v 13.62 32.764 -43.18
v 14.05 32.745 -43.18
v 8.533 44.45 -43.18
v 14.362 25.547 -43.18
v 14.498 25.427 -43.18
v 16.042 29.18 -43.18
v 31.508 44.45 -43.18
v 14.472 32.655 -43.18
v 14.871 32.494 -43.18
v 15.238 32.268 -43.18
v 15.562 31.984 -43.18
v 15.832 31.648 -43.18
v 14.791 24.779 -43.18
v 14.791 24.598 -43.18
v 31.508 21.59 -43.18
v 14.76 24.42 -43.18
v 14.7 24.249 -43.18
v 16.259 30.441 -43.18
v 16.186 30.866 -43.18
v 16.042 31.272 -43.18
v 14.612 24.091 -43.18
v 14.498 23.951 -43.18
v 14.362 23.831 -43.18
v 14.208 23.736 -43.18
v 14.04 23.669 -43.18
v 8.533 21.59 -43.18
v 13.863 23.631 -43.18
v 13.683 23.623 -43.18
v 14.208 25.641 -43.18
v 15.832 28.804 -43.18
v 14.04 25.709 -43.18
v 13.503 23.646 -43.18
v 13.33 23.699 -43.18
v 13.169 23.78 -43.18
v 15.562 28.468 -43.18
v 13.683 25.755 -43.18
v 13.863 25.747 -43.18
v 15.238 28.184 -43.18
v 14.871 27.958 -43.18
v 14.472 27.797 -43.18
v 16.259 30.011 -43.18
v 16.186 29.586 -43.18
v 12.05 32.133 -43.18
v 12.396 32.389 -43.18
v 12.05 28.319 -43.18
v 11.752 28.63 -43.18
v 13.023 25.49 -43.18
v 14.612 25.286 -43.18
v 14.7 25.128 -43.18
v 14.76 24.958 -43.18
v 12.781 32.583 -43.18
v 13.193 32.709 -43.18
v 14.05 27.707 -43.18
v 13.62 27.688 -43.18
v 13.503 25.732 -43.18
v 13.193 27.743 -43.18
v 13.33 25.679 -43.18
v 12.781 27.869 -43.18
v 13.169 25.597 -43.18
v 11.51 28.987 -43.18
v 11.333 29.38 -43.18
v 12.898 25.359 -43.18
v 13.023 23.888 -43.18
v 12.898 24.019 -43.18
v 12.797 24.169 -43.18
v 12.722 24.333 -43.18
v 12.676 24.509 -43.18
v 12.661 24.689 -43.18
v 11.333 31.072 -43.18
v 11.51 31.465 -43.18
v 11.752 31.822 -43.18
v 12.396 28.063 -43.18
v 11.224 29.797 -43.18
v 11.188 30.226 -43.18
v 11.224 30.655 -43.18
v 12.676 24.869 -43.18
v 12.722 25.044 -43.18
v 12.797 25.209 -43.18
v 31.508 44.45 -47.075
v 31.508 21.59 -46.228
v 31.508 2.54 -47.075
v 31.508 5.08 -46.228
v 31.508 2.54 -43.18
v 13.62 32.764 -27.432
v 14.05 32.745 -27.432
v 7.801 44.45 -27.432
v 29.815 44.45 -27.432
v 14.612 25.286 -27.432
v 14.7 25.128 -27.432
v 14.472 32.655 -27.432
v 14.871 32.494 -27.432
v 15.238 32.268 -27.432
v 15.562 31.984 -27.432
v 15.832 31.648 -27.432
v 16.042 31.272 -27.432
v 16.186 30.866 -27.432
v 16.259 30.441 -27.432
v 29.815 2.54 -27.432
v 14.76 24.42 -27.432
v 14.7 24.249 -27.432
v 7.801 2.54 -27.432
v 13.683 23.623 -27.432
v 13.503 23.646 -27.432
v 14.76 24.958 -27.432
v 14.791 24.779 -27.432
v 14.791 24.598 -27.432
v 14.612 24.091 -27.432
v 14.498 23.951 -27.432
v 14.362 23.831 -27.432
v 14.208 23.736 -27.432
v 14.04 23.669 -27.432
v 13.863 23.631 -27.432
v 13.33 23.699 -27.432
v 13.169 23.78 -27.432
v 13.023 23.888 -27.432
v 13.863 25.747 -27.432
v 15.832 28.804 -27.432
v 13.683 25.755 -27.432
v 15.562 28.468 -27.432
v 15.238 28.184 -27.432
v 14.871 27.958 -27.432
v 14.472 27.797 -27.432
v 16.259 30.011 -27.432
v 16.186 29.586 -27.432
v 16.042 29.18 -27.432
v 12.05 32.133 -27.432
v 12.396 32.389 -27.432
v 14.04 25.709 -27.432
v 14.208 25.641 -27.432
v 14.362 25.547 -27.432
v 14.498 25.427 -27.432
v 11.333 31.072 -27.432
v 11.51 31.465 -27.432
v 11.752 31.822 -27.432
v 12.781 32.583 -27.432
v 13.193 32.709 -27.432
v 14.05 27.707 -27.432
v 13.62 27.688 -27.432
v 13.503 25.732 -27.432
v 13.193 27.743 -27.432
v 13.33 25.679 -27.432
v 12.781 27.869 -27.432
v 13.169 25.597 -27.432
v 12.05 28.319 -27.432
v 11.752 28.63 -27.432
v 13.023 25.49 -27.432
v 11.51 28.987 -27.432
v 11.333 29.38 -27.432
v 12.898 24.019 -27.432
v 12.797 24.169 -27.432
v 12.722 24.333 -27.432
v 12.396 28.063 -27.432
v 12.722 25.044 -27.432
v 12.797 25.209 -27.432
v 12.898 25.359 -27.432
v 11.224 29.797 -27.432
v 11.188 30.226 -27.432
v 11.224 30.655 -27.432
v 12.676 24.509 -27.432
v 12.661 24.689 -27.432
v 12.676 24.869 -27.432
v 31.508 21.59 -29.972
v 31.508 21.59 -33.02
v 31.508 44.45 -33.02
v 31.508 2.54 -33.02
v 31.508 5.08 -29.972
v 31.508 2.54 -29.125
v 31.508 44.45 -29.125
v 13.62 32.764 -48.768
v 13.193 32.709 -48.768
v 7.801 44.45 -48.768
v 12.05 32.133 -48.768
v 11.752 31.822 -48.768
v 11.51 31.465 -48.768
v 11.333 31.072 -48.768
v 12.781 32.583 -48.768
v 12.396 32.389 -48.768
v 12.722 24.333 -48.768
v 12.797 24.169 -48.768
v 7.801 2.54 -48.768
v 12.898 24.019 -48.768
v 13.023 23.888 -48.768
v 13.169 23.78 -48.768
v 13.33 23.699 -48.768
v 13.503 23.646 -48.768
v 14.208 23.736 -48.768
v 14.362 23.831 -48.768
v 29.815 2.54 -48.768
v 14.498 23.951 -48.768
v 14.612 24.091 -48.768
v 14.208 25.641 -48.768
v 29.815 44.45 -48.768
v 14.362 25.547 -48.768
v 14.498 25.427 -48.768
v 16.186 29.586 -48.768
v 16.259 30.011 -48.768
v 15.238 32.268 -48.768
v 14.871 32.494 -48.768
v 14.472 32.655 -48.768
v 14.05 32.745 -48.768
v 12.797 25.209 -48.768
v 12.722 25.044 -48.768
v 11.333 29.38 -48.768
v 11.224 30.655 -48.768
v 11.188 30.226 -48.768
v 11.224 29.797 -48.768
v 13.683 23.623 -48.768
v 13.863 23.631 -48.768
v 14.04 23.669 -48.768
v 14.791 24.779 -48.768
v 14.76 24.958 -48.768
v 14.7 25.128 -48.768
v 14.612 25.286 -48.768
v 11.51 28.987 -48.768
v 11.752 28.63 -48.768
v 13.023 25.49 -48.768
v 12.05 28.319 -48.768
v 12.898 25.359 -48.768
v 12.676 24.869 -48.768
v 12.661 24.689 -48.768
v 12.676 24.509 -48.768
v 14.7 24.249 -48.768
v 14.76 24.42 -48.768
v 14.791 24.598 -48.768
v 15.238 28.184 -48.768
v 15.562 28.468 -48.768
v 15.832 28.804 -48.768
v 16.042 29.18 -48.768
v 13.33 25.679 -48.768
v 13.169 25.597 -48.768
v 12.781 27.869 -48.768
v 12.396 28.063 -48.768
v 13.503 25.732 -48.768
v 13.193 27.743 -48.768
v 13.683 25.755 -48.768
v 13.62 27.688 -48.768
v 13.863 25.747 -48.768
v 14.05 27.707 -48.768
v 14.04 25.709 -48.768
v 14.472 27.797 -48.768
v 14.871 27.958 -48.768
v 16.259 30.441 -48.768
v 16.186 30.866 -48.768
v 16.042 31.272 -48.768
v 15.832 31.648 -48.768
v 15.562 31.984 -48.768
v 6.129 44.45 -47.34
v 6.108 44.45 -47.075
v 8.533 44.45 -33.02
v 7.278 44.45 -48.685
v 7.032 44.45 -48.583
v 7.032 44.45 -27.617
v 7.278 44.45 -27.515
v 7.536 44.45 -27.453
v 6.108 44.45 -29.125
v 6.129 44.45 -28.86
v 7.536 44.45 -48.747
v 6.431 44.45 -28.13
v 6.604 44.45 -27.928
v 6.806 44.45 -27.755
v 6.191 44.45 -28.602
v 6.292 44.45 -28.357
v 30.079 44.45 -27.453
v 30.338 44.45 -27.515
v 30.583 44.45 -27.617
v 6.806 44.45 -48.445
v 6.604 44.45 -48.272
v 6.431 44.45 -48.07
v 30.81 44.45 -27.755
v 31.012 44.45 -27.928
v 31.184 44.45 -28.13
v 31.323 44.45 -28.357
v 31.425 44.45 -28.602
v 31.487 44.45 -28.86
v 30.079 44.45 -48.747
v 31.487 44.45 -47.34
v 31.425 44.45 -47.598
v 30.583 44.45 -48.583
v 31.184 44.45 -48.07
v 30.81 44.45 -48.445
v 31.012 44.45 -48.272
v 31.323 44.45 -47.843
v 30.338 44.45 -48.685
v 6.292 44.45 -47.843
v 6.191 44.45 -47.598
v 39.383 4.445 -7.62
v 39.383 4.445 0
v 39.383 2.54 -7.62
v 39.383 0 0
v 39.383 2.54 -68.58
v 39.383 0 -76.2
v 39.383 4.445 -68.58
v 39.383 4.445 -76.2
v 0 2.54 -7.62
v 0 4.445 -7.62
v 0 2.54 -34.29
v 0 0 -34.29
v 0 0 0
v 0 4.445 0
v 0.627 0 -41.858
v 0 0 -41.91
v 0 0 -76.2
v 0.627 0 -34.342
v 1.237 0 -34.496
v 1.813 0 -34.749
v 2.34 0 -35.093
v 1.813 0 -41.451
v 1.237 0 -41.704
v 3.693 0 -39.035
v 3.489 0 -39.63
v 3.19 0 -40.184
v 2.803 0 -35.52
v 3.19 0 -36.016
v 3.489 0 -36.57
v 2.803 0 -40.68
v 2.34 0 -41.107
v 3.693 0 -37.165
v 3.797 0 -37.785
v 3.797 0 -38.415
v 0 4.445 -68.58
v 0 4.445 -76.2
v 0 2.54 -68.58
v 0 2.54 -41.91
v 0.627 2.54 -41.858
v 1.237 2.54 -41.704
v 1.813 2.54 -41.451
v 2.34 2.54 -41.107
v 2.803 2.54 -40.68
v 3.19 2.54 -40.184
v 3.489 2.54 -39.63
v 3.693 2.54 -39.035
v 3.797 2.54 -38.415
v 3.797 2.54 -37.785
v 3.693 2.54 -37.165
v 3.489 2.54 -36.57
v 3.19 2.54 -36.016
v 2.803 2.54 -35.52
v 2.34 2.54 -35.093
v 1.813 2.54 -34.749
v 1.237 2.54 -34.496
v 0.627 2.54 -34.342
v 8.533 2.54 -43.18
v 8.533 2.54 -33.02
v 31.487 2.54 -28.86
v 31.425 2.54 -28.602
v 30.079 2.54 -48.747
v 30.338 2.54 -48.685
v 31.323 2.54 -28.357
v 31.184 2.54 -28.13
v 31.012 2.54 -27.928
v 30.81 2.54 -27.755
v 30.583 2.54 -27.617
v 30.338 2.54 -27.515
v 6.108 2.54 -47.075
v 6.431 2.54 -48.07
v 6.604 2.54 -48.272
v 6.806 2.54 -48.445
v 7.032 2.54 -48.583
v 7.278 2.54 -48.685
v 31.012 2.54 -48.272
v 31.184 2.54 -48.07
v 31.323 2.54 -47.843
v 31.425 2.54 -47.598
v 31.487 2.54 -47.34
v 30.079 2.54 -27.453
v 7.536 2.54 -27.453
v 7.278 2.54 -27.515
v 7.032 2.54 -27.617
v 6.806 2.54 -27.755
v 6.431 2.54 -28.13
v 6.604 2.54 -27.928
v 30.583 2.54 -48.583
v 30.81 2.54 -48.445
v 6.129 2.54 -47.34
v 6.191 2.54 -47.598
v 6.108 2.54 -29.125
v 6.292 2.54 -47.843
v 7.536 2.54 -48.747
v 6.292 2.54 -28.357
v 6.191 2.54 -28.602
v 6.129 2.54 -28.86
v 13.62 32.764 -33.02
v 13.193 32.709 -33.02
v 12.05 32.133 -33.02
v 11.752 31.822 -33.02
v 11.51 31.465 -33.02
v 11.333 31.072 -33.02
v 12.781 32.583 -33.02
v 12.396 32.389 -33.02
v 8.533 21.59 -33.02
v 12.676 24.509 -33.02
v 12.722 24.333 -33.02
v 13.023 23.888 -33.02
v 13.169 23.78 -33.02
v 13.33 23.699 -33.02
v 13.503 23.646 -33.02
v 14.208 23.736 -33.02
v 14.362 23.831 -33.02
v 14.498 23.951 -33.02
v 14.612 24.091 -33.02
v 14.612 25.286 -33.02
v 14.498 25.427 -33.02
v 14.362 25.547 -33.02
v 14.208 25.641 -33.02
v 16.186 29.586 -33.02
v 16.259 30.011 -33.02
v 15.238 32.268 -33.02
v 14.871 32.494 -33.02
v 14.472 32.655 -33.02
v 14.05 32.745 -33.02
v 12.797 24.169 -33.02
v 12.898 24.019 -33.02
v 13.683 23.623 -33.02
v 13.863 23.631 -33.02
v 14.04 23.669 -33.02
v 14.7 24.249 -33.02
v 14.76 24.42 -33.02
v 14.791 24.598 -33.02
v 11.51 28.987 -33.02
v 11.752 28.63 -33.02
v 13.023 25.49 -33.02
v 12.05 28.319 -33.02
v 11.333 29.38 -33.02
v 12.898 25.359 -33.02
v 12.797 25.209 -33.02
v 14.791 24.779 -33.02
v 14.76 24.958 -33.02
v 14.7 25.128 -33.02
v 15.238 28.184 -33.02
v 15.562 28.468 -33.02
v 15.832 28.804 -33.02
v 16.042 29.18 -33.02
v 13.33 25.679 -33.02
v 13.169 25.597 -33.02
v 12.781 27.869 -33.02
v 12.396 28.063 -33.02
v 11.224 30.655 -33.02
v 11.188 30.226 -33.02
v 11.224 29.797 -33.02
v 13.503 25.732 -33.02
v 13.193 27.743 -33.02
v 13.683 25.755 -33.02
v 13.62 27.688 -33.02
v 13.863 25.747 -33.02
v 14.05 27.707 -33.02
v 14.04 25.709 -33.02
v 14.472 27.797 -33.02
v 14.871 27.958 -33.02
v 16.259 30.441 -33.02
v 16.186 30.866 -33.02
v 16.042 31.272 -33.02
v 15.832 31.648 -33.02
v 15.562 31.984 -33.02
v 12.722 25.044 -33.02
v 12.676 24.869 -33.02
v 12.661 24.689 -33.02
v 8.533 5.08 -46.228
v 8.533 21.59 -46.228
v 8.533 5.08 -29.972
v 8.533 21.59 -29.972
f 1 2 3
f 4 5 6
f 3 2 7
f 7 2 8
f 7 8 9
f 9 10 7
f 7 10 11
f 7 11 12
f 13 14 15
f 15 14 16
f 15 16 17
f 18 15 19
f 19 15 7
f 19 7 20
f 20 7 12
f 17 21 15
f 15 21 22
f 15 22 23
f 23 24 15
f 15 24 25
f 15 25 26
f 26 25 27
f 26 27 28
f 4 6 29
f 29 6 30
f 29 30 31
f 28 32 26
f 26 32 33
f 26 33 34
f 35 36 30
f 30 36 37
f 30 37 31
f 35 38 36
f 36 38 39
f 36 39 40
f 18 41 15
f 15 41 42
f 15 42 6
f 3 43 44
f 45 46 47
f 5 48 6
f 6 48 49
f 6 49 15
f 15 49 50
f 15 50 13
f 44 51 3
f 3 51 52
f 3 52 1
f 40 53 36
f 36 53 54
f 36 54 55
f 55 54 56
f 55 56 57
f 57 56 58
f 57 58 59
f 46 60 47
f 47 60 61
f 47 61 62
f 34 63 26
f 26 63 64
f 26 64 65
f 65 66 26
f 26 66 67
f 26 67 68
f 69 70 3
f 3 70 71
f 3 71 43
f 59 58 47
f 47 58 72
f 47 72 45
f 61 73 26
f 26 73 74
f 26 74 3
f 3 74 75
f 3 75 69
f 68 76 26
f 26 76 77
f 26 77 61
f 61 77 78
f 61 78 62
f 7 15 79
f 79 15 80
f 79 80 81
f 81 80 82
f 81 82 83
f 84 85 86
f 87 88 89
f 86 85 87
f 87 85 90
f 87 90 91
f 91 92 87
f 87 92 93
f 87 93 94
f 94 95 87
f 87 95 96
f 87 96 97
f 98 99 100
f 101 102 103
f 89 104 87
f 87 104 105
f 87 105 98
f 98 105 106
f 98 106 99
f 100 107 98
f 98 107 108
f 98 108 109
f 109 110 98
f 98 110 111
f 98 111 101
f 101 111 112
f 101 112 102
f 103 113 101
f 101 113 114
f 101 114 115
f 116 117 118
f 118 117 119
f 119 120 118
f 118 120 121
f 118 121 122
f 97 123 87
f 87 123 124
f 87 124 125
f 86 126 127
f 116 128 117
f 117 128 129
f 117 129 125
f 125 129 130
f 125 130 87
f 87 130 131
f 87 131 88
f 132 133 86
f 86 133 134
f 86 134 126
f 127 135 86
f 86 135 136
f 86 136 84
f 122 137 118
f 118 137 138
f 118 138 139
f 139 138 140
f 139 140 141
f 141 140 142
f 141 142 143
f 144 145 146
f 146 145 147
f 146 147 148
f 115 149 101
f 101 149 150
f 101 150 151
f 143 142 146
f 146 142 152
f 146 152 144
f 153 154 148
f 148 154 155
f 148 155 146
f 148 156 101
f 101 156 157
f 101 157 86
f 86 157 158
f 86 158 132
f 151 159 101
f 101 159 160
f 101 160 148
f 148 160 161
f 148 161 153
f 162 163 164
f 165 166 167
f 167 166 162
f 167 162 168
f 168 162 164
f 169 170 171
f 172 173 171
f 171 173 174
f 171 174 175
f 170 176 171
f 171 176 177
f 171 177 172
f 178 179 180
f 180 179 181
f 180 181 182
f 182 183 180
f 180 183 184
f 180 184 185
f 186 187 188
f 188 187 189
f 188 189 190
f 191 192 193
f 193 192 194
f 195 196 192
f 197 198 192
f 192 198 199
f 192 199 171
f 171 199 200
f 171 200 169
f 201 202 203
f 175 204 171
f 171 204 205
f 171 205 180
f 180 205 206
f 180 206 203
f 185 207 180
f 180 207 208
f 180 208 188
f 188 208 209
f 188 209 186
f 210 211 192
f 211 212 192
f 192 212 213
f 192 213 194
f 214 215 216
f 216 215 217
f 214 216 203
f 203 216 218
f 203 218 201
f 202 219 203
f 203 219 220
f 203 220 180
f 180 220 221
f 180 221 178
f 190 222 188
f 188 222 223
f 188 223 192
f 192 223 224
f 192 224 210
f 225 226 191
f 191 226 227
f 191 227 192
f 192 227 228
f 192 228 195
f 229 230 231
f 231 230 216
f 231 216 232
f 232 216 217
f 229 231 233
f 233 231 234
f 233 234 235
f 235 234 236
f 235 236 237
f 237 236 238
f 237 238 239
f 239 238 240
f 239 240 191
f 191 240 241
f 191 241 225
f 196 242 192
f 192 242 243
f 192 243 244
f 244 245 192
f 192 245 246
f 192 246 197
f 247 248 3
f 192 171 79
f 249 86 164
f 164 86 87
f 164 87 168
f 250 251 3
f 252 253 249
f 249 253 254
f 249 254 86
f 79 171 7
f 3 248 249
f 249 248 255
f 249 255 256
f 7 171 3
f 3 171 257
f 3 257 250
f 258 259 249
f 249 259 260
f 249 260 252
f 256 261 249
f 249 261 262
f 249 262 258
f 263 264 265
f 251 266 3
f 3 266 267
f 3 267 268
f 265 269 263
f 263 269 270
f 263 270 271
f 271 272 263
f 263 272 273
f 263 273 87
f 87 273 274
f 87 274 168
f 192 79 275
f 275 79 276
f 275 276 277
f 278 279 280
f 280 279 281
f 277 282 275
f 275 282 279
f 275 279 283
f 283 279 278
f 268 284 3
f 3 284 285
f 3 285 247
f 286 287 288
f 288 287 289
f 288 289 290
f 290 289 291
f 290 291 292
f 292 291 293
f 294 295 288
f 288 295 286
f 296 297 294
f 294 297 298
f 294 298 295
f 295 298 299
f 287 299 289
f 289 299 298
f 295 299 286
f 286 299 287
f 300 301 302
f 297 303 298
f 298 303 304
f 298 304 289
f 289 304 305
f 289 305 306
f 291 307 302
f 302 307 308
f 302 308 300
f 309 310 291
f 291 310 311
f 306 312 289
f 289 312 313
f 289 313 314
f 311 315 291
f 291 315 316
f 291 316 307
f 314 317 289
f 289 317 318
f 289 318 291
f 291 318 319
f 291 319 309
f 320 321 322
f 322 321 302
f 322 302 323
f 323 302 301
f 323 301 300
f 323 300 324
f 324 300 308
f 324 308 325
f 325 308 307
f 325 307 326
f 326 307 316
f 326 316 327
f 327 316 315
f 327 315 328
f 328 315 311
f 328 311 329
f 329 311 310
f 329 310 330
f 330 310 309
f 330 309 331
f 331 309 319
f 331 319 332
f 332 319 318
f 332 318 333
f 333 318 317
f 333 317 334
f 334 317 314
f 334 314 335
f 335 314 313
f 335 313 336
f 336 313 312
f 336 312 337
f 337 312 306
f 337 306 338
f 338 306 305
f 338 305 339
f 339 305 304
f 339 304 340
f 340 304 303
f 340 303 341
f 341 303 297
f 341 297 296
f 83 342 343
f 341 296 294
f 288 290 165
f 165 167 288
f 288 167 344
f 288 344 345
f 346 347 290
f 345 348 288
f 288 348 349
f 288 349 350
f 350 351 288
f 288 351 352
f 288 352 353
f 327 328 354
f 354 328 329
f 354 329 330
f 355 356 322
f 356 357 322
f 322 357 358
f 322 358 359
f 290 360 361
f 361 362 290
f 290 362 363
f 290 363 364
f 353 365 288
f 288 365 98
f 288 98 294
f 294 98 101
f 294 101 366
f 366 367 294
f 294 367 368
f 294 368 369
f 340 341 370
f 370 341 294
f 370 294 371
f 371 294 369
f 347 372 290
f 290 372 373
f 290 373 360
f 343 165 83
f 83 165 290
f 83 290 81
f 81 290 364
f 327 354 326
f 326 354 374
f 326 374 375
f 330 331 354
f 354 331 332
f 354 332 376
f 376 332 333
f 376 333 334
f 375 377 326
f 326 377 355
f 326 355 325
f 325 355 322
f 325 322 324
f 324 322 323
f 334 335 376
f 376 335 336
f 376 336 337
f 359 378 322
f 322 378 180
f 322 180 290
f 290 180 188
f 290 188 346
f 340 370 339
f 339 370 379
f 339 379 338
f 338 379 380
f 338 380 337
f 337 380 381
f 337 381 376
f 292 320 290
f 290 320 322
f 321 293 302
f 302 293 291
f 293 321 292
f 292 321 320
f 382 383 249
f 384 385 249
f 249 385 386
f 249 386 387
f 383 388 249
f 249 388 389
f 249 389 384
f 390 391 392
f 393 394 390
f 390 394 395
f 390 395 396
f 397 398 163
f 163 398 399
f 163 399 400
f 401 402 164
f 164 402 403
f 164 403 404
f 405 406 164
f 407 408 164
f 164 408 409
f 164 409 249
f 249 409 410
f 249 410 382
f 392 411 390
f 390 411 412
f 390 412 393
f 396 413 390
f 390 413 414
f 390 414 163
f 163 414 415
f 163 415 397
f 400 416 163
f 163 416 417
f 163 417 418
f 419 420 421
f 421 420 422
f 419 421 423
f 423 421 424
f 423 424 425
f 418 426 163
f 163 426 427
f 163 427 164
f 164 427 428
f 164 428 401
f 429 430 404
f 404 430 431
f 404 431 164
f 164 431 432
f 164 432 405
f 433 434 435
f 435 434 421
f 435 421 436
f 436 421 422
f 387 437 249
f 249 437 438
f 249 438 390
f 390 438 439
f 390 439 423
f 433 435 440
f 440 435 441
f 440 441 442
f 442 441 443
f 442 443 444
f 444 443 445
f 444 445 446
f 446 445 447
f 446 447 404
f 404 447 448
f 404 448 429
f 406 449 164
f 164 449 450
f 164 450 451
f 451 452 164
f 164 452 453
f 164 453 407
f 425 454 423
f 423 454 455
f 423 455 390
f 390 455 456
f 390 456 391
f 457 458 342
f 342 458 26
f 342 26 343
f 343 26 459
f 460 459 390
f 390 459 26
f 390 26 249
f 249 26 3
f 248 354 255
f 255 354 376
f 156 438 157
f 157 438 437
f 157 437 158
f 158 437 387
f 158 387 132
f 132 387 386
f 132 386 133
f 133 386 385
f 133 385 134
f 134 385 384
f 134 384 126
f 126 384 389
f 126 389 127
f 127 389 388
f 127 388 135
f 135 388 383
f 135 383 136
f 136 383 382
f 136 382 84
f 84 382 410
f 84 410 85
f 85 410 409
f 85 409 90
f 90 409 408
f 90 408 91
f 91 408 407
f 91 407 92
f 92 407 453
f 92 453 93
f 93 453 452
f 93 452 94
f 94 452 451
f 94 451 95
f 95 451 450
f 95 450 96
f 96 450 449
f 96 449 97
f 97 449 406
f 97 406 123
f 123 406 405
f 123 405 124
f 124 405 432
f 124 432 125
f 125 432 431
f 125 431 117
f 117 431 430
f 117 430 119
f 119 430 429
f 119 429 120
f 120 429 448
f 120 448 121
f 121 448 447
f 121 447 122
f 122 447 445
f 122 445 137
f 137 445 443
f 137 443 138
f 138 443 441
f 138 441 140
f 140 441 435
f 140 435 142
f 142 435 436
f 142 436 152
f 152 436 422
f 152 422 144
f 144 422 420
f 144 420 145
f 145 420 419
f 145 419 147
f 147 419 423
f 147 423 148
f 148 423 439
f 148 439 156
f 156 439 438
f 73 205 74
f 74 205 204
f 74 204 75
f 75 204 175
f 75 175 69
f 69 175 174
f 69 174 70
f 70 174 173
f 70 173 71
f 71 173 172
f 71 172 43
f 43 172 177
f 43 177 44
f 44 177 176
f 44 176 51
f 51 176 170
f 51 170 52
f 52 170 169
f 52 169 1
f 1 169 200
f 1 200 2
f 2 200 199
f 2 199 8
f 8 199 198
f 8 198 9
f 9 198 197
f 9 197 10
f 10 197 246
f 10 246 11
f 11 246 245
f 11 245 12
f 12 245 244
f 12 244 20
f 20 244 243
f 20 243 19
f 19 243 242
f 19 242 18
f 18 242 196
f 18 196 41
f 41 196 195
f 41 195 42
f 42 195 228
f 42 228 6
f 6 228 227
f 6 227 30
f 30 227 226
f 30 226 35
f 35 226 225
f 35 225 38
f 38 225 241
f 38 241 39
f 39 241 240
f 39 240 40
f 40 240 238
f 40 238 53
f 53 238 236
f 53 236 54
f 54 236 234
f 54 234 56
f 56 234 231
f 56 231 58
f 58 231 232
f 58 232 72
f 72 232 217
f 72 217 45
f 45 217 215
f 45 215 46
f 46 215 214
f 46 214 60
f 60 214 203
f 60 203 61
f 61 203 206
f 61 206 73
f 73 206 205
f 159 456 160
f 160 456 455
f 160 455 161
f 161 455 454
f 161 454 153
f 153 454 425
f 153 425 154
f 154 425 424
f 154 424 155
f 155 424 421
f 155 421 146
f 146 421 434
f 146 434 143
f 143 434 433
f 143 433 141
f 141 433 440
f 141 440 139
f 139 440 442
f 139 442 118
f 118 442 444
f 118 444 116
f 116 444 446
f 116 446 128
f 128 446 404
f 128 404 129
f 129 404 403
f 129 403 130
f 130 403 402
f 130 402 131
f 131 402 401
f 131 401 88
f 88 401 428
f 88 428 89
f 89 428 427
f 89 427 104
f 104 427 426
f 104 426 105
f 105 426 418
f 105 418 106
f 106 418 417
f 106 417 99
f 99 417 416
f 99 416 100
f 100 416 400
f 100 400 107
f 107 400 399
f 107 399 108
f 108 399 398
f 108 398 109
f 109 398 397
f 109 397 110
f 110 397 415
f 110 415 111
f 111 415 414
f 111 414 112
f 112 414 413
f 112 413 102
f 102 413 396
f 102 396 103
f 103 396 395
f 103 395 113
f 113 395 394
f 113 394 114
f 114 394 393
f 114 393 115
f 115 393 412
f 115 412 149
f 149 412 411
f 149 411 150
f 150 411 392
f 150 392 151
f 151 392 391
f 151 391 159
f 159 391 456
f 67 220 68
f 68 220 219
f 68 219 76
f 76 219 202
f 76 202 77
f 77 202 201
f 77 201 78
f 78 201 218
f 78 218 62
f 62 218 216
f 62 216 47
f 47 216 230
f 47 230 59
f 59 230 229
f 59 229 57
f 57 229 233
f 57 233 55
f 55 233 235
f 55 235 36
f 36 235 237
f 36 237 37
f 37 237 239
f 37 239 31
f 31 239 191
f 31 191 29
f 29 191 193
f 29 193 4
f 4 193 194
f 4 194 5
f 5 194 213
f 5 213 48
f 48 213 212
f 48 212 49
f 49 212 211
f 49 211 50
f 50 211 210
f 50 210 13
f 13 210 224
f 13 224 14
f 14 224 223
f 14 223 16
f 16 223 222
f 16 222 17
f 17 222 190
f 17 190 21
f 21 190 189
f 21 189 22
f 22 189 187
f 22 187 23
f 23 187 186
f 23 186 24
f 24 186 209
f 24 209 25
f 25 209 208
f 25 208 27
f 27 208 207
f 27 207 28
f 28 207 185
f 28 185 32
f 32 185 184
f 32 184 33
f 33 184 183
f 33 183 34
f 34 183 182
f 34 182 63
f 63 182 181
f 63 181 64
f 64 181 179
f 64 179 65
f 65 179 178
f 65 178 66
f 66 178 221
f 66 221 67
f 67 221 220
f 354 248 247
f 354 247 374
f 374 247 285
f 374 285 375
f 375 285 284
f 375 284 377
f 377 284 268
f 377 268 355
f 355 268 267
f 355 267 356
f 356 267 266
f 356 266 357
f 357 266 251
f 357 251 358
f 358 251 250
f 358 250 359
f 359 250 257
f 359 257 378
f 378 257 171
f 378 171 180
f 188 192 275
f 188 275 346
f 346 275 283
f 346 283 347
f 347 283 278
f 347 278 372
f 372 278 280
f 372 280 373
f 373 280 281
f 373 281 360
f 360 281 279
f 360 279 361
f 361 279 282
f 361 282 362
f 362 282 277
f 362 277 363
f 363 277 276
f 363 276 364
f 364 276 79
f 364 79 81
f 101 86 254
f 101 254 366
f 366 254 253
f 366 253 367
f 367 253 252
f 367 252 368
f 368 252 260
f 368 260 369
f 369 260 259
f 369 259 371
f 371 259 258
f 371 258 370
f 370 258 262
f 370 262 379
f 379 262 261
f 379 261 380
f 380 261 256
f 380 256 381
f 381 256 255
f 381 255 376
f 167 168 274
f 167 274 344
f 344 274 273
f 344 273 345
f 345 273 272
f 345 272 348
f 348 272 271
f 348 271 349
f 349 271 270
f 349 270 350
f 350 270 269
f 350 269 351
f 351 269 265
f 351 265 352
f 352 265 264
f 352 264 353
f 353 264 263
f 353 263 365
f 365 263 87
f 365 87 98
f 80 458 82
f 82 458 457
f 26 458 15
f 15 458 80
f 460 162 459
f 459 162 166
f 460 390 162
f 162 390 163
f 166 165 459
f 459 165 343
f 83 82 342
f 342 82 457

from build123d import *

# Parameters (mm, degrees)
SKETCH2_W             = 39.3827
SKETCH2_H             = 7.62
BOSS_EXTRUDE2_DEPTH   = 4.445
BOSS_EXTRUDE2_2_DEPTH = 4.445
BOSS_EXTRUDE3_DEPTH   = 2.54
BOSS_EXTRUDE4_DEPTH   = 44.45
CUT_EXTRUDE3_REACH    = 78.845
SKETCH5_R             = 2.54
SKETCH5_R_2           = 1.0668
CUT_EXTRUDE5_DEPTH    = 41.91
CUT_EXTRUDE7_START    = 2.54
SKETCH7_W             = 22.974442495
SKETCH7_H             = 3.048
CUT_EXTRUDE7_DEPTH    = 16.51
CUT_EXTRUDE8_DEPTH    = 22.974442495


with BuildPart() as part:
    # Sketch2 → Boss-Extrude2 (new body)
    with BuildSketch(Plane(origin=(0, 0, 0), x_dir=(1, 0, 0), z_dir=(0, 1, 0))):
        with Locations((19.69135, 3.81)):
            Rectangle(SKETCH2_W, SKETCH2_H)
    extrude(amount=BOSS_EXTRUDE2_DEPTH)



with BuildPart() as body_2:
    # Sketch2 → Boss-Extrude2 2 (new body)
    with BuildSketch(Plane(origin=(0, 0, 0), x_dir=(1, 0, 0), z_dir=(0, 1, 0))):
        with Locations((19.69135, 72.39)):
            Rectangle(SKETCH2_W, SKETCH2_H)
    extrude(amount=BOSS_EXTRUDE2_2_DEPTH)


with BuildPart() as part_1:
    add(part.part)

    add(body_2.part)  # Boss-Extrude3 merges body 2
    # Sketch2<3> → Boss-Extrude3 (add)
    with BuildSketch(Plane(origin=(0, 0, 0), x_dir=(1, 0, 0), z_dir=(0, 1, 0))):
        with BuildLine():
            Line((0, 34.29), (0, 7.62))
            Line((0, 7.62), (39.3827, 7.62))
            Line((39.3827, 7.62), (39.3827, 68.58))
            Line((39.3827, 68.58), (0, 68.58))
            Line((0, 68.58), (0, 41.91))
            ThreePointArc((0, 41.91), (3.81, 38.1), (0, 34.29))
        make_face()
    extrude(amount=BOSS_EXTRUDE3_DEPTH)

    # Sketch2<8> → Boss-Extrude4 (add)
    with BuildSketch(Plane(origin=(0, 0, 0), x_dir=(1, 0, 0), z_dir=(0, 1, 0))):
        Polygon((8.533414456, 33.02), (8.533414456, 38.1), (8.533414456, 43.18), (16.153414456, 43.18), (31.507856951, 43.18), (31.507856951, 48.768), (6.107856951, 48.768), (6.107856951, 38.1), (6.107856951, 27.432), (31.507856951, 27.432), (31.507856951, 33.02), (16.153414456, 33.02), align=None)
    extrude(amount=BOSS_EXTRUDE4_DEPTH)

    # Cut-Extrude3: up to this face of the body (flat: up to its plane)
    cut_extrude3_end = Plane(part_1.part.faces().sort_by_distance((18.807856951, 23.495, -27.432))[0])
    # Sketch5 → Cut-Extrude3 (cut, up to the picked face)
    with BuildSketch(Plane(origin=(0, 0, -48.768), x_dir=(-1, 0, 0), z_dir=(0, 0, -1)), mode=Mode.PRIVATE) as cut_extrude3_sk1:
        with Locations((-13.727856951, 30.226)):
            Circle(SKETCH5_R)
    cut_extrude3_tool1 = split(extrude(cut_extrude3_sk1.sketch, amount=-CUT_EXTRUDE3_REACH, mode=Mode.PRIVATE), bisect_by=cut_extrude3_end, keep=Keep.BOTH, mode=Mode.PRIVATE)
    # Sketch5 → Cut-Extrude3 (cut, up to the picked face)
    with BuildSketch(Plane(origin=(0, 0, -48.768), x_dir=(-1, 0, 0), z_dir=(0, 0, -1)), mode=Mode.PRIVATE) as cut_extrude3_sk2:
        with Locations((-13.727856951, 24.6888)):
            Circle(SKETCH5_R_2)
    cut_extrude3_tool2 = split(extrude(cut_extrude3_sk2.sketch, amount=-CUT_EXTRUDE3_REACH, mode=Mode.PRIVATE), bisect_by=cut_extrude3_end, keep=Keep.BOTH, mode=Mode.PRIVATE)
    add(cut_extrude3_tool1.solids().sort_by(Axis((13.727857, 30.226, -48.768), (0, 0, 1)))[0], mode=Mode.SUBTRACT)
    add(cut_extrude3_tool2.solids().sort_by(Axis((13.727857, 24.6888, -48.768), (0, 0, 1)))[0], mode=Mode.SUBTRACT)

    # Sketch6 → Cut-Extrude5 (cut)
    with BuildSketch(Plane(origin=(0, 44.45, 0), x_dir=(1, 0, 0), z_dir=(0, 1, 0))):
        with BuildLine():
            Line((31.507856951, 29.125333333), (31.507856951, 27.432))
            Line((31.507856951, 27.432), (29.814523617, 27.432))
            ThreePointArc((29.814523617, 27.432), (31.0118911, 27.927965851), (31.507856951, 29.125333333))
        make_face()
        with BuildLine():
            Line((7.801190284, 48.768), (6.107856951, 48.768))
            Line((6.107856951, 48.768), (6.107856951, 47.074666667))
            ThreePointArc((6.107856951, 47.074666667), (6.603822801, 48.272034149), (7.801190284, 48.768))
        make_face()
        with BuildLine():
            Line((6.107856951, 29.125333333), (6.107856951, 27.432))
            Line((6.107856951, 27.432), (7.801190284, 27.432))
            ThreePointArc((7.801190284, 27.432), (6.603822801, 27.927965851), (6.107856951, 29.125333333))
        make_face()
        with BuildLine():
            Line((29.814523617, 48.768), (31.507856951, 48.768))
            Line((31.507856951, 48.768), (31.507856951, 47.074666667))
            ThreePointArc((31.507856951, 47.074666667), (31.0118911, 48.272034149), (29.814523617, 48.768))
        make_face()
    extrude(amount=-CUT_EXTRUDE5_DEPTH, mode=Mode.SUBTRACT)

    # Sketch7 → Cut-Extrude7 (cut)
    with BuildSketch(Plane(origin=(0, 2.54, 0), x_dir=(1, 0, 0), z_dir=(0, 1, 0)).offset(CUT_EXTRUDE7_START)):
        with Locations((20.020635704, 44.704)):
            Rectangle(SKETCH7_W, SKETCH7_H)
        with Locations((20.020635704, 31.496)):
            Rectangle(SKETCH7_W, SKETCH7_H)
    extrude(amount=CUT_EXTRUDE7_DEPTH, mode=Mode.SUBTRACT)

    # Sketch8 → Cut-Extrude8 (cut)
    with BuildSketch(Plane(origin=(31.507856951, 0, 0), x_dir=(0, 0, -1), z_dir=(1, 0, 0))):
        Polygon((33.02, 2.54), (29.972, 5.08), (33.02, 5.08), align=None)
        Polygon((43.18, 2.54), (46.228, 5.08), (43.18, 5.08), align=None)
    extrude(amount=-CUT_EXTRUDE8_DEPTH, mode=Mode.SUBTRACT)


solid = part_1.part
